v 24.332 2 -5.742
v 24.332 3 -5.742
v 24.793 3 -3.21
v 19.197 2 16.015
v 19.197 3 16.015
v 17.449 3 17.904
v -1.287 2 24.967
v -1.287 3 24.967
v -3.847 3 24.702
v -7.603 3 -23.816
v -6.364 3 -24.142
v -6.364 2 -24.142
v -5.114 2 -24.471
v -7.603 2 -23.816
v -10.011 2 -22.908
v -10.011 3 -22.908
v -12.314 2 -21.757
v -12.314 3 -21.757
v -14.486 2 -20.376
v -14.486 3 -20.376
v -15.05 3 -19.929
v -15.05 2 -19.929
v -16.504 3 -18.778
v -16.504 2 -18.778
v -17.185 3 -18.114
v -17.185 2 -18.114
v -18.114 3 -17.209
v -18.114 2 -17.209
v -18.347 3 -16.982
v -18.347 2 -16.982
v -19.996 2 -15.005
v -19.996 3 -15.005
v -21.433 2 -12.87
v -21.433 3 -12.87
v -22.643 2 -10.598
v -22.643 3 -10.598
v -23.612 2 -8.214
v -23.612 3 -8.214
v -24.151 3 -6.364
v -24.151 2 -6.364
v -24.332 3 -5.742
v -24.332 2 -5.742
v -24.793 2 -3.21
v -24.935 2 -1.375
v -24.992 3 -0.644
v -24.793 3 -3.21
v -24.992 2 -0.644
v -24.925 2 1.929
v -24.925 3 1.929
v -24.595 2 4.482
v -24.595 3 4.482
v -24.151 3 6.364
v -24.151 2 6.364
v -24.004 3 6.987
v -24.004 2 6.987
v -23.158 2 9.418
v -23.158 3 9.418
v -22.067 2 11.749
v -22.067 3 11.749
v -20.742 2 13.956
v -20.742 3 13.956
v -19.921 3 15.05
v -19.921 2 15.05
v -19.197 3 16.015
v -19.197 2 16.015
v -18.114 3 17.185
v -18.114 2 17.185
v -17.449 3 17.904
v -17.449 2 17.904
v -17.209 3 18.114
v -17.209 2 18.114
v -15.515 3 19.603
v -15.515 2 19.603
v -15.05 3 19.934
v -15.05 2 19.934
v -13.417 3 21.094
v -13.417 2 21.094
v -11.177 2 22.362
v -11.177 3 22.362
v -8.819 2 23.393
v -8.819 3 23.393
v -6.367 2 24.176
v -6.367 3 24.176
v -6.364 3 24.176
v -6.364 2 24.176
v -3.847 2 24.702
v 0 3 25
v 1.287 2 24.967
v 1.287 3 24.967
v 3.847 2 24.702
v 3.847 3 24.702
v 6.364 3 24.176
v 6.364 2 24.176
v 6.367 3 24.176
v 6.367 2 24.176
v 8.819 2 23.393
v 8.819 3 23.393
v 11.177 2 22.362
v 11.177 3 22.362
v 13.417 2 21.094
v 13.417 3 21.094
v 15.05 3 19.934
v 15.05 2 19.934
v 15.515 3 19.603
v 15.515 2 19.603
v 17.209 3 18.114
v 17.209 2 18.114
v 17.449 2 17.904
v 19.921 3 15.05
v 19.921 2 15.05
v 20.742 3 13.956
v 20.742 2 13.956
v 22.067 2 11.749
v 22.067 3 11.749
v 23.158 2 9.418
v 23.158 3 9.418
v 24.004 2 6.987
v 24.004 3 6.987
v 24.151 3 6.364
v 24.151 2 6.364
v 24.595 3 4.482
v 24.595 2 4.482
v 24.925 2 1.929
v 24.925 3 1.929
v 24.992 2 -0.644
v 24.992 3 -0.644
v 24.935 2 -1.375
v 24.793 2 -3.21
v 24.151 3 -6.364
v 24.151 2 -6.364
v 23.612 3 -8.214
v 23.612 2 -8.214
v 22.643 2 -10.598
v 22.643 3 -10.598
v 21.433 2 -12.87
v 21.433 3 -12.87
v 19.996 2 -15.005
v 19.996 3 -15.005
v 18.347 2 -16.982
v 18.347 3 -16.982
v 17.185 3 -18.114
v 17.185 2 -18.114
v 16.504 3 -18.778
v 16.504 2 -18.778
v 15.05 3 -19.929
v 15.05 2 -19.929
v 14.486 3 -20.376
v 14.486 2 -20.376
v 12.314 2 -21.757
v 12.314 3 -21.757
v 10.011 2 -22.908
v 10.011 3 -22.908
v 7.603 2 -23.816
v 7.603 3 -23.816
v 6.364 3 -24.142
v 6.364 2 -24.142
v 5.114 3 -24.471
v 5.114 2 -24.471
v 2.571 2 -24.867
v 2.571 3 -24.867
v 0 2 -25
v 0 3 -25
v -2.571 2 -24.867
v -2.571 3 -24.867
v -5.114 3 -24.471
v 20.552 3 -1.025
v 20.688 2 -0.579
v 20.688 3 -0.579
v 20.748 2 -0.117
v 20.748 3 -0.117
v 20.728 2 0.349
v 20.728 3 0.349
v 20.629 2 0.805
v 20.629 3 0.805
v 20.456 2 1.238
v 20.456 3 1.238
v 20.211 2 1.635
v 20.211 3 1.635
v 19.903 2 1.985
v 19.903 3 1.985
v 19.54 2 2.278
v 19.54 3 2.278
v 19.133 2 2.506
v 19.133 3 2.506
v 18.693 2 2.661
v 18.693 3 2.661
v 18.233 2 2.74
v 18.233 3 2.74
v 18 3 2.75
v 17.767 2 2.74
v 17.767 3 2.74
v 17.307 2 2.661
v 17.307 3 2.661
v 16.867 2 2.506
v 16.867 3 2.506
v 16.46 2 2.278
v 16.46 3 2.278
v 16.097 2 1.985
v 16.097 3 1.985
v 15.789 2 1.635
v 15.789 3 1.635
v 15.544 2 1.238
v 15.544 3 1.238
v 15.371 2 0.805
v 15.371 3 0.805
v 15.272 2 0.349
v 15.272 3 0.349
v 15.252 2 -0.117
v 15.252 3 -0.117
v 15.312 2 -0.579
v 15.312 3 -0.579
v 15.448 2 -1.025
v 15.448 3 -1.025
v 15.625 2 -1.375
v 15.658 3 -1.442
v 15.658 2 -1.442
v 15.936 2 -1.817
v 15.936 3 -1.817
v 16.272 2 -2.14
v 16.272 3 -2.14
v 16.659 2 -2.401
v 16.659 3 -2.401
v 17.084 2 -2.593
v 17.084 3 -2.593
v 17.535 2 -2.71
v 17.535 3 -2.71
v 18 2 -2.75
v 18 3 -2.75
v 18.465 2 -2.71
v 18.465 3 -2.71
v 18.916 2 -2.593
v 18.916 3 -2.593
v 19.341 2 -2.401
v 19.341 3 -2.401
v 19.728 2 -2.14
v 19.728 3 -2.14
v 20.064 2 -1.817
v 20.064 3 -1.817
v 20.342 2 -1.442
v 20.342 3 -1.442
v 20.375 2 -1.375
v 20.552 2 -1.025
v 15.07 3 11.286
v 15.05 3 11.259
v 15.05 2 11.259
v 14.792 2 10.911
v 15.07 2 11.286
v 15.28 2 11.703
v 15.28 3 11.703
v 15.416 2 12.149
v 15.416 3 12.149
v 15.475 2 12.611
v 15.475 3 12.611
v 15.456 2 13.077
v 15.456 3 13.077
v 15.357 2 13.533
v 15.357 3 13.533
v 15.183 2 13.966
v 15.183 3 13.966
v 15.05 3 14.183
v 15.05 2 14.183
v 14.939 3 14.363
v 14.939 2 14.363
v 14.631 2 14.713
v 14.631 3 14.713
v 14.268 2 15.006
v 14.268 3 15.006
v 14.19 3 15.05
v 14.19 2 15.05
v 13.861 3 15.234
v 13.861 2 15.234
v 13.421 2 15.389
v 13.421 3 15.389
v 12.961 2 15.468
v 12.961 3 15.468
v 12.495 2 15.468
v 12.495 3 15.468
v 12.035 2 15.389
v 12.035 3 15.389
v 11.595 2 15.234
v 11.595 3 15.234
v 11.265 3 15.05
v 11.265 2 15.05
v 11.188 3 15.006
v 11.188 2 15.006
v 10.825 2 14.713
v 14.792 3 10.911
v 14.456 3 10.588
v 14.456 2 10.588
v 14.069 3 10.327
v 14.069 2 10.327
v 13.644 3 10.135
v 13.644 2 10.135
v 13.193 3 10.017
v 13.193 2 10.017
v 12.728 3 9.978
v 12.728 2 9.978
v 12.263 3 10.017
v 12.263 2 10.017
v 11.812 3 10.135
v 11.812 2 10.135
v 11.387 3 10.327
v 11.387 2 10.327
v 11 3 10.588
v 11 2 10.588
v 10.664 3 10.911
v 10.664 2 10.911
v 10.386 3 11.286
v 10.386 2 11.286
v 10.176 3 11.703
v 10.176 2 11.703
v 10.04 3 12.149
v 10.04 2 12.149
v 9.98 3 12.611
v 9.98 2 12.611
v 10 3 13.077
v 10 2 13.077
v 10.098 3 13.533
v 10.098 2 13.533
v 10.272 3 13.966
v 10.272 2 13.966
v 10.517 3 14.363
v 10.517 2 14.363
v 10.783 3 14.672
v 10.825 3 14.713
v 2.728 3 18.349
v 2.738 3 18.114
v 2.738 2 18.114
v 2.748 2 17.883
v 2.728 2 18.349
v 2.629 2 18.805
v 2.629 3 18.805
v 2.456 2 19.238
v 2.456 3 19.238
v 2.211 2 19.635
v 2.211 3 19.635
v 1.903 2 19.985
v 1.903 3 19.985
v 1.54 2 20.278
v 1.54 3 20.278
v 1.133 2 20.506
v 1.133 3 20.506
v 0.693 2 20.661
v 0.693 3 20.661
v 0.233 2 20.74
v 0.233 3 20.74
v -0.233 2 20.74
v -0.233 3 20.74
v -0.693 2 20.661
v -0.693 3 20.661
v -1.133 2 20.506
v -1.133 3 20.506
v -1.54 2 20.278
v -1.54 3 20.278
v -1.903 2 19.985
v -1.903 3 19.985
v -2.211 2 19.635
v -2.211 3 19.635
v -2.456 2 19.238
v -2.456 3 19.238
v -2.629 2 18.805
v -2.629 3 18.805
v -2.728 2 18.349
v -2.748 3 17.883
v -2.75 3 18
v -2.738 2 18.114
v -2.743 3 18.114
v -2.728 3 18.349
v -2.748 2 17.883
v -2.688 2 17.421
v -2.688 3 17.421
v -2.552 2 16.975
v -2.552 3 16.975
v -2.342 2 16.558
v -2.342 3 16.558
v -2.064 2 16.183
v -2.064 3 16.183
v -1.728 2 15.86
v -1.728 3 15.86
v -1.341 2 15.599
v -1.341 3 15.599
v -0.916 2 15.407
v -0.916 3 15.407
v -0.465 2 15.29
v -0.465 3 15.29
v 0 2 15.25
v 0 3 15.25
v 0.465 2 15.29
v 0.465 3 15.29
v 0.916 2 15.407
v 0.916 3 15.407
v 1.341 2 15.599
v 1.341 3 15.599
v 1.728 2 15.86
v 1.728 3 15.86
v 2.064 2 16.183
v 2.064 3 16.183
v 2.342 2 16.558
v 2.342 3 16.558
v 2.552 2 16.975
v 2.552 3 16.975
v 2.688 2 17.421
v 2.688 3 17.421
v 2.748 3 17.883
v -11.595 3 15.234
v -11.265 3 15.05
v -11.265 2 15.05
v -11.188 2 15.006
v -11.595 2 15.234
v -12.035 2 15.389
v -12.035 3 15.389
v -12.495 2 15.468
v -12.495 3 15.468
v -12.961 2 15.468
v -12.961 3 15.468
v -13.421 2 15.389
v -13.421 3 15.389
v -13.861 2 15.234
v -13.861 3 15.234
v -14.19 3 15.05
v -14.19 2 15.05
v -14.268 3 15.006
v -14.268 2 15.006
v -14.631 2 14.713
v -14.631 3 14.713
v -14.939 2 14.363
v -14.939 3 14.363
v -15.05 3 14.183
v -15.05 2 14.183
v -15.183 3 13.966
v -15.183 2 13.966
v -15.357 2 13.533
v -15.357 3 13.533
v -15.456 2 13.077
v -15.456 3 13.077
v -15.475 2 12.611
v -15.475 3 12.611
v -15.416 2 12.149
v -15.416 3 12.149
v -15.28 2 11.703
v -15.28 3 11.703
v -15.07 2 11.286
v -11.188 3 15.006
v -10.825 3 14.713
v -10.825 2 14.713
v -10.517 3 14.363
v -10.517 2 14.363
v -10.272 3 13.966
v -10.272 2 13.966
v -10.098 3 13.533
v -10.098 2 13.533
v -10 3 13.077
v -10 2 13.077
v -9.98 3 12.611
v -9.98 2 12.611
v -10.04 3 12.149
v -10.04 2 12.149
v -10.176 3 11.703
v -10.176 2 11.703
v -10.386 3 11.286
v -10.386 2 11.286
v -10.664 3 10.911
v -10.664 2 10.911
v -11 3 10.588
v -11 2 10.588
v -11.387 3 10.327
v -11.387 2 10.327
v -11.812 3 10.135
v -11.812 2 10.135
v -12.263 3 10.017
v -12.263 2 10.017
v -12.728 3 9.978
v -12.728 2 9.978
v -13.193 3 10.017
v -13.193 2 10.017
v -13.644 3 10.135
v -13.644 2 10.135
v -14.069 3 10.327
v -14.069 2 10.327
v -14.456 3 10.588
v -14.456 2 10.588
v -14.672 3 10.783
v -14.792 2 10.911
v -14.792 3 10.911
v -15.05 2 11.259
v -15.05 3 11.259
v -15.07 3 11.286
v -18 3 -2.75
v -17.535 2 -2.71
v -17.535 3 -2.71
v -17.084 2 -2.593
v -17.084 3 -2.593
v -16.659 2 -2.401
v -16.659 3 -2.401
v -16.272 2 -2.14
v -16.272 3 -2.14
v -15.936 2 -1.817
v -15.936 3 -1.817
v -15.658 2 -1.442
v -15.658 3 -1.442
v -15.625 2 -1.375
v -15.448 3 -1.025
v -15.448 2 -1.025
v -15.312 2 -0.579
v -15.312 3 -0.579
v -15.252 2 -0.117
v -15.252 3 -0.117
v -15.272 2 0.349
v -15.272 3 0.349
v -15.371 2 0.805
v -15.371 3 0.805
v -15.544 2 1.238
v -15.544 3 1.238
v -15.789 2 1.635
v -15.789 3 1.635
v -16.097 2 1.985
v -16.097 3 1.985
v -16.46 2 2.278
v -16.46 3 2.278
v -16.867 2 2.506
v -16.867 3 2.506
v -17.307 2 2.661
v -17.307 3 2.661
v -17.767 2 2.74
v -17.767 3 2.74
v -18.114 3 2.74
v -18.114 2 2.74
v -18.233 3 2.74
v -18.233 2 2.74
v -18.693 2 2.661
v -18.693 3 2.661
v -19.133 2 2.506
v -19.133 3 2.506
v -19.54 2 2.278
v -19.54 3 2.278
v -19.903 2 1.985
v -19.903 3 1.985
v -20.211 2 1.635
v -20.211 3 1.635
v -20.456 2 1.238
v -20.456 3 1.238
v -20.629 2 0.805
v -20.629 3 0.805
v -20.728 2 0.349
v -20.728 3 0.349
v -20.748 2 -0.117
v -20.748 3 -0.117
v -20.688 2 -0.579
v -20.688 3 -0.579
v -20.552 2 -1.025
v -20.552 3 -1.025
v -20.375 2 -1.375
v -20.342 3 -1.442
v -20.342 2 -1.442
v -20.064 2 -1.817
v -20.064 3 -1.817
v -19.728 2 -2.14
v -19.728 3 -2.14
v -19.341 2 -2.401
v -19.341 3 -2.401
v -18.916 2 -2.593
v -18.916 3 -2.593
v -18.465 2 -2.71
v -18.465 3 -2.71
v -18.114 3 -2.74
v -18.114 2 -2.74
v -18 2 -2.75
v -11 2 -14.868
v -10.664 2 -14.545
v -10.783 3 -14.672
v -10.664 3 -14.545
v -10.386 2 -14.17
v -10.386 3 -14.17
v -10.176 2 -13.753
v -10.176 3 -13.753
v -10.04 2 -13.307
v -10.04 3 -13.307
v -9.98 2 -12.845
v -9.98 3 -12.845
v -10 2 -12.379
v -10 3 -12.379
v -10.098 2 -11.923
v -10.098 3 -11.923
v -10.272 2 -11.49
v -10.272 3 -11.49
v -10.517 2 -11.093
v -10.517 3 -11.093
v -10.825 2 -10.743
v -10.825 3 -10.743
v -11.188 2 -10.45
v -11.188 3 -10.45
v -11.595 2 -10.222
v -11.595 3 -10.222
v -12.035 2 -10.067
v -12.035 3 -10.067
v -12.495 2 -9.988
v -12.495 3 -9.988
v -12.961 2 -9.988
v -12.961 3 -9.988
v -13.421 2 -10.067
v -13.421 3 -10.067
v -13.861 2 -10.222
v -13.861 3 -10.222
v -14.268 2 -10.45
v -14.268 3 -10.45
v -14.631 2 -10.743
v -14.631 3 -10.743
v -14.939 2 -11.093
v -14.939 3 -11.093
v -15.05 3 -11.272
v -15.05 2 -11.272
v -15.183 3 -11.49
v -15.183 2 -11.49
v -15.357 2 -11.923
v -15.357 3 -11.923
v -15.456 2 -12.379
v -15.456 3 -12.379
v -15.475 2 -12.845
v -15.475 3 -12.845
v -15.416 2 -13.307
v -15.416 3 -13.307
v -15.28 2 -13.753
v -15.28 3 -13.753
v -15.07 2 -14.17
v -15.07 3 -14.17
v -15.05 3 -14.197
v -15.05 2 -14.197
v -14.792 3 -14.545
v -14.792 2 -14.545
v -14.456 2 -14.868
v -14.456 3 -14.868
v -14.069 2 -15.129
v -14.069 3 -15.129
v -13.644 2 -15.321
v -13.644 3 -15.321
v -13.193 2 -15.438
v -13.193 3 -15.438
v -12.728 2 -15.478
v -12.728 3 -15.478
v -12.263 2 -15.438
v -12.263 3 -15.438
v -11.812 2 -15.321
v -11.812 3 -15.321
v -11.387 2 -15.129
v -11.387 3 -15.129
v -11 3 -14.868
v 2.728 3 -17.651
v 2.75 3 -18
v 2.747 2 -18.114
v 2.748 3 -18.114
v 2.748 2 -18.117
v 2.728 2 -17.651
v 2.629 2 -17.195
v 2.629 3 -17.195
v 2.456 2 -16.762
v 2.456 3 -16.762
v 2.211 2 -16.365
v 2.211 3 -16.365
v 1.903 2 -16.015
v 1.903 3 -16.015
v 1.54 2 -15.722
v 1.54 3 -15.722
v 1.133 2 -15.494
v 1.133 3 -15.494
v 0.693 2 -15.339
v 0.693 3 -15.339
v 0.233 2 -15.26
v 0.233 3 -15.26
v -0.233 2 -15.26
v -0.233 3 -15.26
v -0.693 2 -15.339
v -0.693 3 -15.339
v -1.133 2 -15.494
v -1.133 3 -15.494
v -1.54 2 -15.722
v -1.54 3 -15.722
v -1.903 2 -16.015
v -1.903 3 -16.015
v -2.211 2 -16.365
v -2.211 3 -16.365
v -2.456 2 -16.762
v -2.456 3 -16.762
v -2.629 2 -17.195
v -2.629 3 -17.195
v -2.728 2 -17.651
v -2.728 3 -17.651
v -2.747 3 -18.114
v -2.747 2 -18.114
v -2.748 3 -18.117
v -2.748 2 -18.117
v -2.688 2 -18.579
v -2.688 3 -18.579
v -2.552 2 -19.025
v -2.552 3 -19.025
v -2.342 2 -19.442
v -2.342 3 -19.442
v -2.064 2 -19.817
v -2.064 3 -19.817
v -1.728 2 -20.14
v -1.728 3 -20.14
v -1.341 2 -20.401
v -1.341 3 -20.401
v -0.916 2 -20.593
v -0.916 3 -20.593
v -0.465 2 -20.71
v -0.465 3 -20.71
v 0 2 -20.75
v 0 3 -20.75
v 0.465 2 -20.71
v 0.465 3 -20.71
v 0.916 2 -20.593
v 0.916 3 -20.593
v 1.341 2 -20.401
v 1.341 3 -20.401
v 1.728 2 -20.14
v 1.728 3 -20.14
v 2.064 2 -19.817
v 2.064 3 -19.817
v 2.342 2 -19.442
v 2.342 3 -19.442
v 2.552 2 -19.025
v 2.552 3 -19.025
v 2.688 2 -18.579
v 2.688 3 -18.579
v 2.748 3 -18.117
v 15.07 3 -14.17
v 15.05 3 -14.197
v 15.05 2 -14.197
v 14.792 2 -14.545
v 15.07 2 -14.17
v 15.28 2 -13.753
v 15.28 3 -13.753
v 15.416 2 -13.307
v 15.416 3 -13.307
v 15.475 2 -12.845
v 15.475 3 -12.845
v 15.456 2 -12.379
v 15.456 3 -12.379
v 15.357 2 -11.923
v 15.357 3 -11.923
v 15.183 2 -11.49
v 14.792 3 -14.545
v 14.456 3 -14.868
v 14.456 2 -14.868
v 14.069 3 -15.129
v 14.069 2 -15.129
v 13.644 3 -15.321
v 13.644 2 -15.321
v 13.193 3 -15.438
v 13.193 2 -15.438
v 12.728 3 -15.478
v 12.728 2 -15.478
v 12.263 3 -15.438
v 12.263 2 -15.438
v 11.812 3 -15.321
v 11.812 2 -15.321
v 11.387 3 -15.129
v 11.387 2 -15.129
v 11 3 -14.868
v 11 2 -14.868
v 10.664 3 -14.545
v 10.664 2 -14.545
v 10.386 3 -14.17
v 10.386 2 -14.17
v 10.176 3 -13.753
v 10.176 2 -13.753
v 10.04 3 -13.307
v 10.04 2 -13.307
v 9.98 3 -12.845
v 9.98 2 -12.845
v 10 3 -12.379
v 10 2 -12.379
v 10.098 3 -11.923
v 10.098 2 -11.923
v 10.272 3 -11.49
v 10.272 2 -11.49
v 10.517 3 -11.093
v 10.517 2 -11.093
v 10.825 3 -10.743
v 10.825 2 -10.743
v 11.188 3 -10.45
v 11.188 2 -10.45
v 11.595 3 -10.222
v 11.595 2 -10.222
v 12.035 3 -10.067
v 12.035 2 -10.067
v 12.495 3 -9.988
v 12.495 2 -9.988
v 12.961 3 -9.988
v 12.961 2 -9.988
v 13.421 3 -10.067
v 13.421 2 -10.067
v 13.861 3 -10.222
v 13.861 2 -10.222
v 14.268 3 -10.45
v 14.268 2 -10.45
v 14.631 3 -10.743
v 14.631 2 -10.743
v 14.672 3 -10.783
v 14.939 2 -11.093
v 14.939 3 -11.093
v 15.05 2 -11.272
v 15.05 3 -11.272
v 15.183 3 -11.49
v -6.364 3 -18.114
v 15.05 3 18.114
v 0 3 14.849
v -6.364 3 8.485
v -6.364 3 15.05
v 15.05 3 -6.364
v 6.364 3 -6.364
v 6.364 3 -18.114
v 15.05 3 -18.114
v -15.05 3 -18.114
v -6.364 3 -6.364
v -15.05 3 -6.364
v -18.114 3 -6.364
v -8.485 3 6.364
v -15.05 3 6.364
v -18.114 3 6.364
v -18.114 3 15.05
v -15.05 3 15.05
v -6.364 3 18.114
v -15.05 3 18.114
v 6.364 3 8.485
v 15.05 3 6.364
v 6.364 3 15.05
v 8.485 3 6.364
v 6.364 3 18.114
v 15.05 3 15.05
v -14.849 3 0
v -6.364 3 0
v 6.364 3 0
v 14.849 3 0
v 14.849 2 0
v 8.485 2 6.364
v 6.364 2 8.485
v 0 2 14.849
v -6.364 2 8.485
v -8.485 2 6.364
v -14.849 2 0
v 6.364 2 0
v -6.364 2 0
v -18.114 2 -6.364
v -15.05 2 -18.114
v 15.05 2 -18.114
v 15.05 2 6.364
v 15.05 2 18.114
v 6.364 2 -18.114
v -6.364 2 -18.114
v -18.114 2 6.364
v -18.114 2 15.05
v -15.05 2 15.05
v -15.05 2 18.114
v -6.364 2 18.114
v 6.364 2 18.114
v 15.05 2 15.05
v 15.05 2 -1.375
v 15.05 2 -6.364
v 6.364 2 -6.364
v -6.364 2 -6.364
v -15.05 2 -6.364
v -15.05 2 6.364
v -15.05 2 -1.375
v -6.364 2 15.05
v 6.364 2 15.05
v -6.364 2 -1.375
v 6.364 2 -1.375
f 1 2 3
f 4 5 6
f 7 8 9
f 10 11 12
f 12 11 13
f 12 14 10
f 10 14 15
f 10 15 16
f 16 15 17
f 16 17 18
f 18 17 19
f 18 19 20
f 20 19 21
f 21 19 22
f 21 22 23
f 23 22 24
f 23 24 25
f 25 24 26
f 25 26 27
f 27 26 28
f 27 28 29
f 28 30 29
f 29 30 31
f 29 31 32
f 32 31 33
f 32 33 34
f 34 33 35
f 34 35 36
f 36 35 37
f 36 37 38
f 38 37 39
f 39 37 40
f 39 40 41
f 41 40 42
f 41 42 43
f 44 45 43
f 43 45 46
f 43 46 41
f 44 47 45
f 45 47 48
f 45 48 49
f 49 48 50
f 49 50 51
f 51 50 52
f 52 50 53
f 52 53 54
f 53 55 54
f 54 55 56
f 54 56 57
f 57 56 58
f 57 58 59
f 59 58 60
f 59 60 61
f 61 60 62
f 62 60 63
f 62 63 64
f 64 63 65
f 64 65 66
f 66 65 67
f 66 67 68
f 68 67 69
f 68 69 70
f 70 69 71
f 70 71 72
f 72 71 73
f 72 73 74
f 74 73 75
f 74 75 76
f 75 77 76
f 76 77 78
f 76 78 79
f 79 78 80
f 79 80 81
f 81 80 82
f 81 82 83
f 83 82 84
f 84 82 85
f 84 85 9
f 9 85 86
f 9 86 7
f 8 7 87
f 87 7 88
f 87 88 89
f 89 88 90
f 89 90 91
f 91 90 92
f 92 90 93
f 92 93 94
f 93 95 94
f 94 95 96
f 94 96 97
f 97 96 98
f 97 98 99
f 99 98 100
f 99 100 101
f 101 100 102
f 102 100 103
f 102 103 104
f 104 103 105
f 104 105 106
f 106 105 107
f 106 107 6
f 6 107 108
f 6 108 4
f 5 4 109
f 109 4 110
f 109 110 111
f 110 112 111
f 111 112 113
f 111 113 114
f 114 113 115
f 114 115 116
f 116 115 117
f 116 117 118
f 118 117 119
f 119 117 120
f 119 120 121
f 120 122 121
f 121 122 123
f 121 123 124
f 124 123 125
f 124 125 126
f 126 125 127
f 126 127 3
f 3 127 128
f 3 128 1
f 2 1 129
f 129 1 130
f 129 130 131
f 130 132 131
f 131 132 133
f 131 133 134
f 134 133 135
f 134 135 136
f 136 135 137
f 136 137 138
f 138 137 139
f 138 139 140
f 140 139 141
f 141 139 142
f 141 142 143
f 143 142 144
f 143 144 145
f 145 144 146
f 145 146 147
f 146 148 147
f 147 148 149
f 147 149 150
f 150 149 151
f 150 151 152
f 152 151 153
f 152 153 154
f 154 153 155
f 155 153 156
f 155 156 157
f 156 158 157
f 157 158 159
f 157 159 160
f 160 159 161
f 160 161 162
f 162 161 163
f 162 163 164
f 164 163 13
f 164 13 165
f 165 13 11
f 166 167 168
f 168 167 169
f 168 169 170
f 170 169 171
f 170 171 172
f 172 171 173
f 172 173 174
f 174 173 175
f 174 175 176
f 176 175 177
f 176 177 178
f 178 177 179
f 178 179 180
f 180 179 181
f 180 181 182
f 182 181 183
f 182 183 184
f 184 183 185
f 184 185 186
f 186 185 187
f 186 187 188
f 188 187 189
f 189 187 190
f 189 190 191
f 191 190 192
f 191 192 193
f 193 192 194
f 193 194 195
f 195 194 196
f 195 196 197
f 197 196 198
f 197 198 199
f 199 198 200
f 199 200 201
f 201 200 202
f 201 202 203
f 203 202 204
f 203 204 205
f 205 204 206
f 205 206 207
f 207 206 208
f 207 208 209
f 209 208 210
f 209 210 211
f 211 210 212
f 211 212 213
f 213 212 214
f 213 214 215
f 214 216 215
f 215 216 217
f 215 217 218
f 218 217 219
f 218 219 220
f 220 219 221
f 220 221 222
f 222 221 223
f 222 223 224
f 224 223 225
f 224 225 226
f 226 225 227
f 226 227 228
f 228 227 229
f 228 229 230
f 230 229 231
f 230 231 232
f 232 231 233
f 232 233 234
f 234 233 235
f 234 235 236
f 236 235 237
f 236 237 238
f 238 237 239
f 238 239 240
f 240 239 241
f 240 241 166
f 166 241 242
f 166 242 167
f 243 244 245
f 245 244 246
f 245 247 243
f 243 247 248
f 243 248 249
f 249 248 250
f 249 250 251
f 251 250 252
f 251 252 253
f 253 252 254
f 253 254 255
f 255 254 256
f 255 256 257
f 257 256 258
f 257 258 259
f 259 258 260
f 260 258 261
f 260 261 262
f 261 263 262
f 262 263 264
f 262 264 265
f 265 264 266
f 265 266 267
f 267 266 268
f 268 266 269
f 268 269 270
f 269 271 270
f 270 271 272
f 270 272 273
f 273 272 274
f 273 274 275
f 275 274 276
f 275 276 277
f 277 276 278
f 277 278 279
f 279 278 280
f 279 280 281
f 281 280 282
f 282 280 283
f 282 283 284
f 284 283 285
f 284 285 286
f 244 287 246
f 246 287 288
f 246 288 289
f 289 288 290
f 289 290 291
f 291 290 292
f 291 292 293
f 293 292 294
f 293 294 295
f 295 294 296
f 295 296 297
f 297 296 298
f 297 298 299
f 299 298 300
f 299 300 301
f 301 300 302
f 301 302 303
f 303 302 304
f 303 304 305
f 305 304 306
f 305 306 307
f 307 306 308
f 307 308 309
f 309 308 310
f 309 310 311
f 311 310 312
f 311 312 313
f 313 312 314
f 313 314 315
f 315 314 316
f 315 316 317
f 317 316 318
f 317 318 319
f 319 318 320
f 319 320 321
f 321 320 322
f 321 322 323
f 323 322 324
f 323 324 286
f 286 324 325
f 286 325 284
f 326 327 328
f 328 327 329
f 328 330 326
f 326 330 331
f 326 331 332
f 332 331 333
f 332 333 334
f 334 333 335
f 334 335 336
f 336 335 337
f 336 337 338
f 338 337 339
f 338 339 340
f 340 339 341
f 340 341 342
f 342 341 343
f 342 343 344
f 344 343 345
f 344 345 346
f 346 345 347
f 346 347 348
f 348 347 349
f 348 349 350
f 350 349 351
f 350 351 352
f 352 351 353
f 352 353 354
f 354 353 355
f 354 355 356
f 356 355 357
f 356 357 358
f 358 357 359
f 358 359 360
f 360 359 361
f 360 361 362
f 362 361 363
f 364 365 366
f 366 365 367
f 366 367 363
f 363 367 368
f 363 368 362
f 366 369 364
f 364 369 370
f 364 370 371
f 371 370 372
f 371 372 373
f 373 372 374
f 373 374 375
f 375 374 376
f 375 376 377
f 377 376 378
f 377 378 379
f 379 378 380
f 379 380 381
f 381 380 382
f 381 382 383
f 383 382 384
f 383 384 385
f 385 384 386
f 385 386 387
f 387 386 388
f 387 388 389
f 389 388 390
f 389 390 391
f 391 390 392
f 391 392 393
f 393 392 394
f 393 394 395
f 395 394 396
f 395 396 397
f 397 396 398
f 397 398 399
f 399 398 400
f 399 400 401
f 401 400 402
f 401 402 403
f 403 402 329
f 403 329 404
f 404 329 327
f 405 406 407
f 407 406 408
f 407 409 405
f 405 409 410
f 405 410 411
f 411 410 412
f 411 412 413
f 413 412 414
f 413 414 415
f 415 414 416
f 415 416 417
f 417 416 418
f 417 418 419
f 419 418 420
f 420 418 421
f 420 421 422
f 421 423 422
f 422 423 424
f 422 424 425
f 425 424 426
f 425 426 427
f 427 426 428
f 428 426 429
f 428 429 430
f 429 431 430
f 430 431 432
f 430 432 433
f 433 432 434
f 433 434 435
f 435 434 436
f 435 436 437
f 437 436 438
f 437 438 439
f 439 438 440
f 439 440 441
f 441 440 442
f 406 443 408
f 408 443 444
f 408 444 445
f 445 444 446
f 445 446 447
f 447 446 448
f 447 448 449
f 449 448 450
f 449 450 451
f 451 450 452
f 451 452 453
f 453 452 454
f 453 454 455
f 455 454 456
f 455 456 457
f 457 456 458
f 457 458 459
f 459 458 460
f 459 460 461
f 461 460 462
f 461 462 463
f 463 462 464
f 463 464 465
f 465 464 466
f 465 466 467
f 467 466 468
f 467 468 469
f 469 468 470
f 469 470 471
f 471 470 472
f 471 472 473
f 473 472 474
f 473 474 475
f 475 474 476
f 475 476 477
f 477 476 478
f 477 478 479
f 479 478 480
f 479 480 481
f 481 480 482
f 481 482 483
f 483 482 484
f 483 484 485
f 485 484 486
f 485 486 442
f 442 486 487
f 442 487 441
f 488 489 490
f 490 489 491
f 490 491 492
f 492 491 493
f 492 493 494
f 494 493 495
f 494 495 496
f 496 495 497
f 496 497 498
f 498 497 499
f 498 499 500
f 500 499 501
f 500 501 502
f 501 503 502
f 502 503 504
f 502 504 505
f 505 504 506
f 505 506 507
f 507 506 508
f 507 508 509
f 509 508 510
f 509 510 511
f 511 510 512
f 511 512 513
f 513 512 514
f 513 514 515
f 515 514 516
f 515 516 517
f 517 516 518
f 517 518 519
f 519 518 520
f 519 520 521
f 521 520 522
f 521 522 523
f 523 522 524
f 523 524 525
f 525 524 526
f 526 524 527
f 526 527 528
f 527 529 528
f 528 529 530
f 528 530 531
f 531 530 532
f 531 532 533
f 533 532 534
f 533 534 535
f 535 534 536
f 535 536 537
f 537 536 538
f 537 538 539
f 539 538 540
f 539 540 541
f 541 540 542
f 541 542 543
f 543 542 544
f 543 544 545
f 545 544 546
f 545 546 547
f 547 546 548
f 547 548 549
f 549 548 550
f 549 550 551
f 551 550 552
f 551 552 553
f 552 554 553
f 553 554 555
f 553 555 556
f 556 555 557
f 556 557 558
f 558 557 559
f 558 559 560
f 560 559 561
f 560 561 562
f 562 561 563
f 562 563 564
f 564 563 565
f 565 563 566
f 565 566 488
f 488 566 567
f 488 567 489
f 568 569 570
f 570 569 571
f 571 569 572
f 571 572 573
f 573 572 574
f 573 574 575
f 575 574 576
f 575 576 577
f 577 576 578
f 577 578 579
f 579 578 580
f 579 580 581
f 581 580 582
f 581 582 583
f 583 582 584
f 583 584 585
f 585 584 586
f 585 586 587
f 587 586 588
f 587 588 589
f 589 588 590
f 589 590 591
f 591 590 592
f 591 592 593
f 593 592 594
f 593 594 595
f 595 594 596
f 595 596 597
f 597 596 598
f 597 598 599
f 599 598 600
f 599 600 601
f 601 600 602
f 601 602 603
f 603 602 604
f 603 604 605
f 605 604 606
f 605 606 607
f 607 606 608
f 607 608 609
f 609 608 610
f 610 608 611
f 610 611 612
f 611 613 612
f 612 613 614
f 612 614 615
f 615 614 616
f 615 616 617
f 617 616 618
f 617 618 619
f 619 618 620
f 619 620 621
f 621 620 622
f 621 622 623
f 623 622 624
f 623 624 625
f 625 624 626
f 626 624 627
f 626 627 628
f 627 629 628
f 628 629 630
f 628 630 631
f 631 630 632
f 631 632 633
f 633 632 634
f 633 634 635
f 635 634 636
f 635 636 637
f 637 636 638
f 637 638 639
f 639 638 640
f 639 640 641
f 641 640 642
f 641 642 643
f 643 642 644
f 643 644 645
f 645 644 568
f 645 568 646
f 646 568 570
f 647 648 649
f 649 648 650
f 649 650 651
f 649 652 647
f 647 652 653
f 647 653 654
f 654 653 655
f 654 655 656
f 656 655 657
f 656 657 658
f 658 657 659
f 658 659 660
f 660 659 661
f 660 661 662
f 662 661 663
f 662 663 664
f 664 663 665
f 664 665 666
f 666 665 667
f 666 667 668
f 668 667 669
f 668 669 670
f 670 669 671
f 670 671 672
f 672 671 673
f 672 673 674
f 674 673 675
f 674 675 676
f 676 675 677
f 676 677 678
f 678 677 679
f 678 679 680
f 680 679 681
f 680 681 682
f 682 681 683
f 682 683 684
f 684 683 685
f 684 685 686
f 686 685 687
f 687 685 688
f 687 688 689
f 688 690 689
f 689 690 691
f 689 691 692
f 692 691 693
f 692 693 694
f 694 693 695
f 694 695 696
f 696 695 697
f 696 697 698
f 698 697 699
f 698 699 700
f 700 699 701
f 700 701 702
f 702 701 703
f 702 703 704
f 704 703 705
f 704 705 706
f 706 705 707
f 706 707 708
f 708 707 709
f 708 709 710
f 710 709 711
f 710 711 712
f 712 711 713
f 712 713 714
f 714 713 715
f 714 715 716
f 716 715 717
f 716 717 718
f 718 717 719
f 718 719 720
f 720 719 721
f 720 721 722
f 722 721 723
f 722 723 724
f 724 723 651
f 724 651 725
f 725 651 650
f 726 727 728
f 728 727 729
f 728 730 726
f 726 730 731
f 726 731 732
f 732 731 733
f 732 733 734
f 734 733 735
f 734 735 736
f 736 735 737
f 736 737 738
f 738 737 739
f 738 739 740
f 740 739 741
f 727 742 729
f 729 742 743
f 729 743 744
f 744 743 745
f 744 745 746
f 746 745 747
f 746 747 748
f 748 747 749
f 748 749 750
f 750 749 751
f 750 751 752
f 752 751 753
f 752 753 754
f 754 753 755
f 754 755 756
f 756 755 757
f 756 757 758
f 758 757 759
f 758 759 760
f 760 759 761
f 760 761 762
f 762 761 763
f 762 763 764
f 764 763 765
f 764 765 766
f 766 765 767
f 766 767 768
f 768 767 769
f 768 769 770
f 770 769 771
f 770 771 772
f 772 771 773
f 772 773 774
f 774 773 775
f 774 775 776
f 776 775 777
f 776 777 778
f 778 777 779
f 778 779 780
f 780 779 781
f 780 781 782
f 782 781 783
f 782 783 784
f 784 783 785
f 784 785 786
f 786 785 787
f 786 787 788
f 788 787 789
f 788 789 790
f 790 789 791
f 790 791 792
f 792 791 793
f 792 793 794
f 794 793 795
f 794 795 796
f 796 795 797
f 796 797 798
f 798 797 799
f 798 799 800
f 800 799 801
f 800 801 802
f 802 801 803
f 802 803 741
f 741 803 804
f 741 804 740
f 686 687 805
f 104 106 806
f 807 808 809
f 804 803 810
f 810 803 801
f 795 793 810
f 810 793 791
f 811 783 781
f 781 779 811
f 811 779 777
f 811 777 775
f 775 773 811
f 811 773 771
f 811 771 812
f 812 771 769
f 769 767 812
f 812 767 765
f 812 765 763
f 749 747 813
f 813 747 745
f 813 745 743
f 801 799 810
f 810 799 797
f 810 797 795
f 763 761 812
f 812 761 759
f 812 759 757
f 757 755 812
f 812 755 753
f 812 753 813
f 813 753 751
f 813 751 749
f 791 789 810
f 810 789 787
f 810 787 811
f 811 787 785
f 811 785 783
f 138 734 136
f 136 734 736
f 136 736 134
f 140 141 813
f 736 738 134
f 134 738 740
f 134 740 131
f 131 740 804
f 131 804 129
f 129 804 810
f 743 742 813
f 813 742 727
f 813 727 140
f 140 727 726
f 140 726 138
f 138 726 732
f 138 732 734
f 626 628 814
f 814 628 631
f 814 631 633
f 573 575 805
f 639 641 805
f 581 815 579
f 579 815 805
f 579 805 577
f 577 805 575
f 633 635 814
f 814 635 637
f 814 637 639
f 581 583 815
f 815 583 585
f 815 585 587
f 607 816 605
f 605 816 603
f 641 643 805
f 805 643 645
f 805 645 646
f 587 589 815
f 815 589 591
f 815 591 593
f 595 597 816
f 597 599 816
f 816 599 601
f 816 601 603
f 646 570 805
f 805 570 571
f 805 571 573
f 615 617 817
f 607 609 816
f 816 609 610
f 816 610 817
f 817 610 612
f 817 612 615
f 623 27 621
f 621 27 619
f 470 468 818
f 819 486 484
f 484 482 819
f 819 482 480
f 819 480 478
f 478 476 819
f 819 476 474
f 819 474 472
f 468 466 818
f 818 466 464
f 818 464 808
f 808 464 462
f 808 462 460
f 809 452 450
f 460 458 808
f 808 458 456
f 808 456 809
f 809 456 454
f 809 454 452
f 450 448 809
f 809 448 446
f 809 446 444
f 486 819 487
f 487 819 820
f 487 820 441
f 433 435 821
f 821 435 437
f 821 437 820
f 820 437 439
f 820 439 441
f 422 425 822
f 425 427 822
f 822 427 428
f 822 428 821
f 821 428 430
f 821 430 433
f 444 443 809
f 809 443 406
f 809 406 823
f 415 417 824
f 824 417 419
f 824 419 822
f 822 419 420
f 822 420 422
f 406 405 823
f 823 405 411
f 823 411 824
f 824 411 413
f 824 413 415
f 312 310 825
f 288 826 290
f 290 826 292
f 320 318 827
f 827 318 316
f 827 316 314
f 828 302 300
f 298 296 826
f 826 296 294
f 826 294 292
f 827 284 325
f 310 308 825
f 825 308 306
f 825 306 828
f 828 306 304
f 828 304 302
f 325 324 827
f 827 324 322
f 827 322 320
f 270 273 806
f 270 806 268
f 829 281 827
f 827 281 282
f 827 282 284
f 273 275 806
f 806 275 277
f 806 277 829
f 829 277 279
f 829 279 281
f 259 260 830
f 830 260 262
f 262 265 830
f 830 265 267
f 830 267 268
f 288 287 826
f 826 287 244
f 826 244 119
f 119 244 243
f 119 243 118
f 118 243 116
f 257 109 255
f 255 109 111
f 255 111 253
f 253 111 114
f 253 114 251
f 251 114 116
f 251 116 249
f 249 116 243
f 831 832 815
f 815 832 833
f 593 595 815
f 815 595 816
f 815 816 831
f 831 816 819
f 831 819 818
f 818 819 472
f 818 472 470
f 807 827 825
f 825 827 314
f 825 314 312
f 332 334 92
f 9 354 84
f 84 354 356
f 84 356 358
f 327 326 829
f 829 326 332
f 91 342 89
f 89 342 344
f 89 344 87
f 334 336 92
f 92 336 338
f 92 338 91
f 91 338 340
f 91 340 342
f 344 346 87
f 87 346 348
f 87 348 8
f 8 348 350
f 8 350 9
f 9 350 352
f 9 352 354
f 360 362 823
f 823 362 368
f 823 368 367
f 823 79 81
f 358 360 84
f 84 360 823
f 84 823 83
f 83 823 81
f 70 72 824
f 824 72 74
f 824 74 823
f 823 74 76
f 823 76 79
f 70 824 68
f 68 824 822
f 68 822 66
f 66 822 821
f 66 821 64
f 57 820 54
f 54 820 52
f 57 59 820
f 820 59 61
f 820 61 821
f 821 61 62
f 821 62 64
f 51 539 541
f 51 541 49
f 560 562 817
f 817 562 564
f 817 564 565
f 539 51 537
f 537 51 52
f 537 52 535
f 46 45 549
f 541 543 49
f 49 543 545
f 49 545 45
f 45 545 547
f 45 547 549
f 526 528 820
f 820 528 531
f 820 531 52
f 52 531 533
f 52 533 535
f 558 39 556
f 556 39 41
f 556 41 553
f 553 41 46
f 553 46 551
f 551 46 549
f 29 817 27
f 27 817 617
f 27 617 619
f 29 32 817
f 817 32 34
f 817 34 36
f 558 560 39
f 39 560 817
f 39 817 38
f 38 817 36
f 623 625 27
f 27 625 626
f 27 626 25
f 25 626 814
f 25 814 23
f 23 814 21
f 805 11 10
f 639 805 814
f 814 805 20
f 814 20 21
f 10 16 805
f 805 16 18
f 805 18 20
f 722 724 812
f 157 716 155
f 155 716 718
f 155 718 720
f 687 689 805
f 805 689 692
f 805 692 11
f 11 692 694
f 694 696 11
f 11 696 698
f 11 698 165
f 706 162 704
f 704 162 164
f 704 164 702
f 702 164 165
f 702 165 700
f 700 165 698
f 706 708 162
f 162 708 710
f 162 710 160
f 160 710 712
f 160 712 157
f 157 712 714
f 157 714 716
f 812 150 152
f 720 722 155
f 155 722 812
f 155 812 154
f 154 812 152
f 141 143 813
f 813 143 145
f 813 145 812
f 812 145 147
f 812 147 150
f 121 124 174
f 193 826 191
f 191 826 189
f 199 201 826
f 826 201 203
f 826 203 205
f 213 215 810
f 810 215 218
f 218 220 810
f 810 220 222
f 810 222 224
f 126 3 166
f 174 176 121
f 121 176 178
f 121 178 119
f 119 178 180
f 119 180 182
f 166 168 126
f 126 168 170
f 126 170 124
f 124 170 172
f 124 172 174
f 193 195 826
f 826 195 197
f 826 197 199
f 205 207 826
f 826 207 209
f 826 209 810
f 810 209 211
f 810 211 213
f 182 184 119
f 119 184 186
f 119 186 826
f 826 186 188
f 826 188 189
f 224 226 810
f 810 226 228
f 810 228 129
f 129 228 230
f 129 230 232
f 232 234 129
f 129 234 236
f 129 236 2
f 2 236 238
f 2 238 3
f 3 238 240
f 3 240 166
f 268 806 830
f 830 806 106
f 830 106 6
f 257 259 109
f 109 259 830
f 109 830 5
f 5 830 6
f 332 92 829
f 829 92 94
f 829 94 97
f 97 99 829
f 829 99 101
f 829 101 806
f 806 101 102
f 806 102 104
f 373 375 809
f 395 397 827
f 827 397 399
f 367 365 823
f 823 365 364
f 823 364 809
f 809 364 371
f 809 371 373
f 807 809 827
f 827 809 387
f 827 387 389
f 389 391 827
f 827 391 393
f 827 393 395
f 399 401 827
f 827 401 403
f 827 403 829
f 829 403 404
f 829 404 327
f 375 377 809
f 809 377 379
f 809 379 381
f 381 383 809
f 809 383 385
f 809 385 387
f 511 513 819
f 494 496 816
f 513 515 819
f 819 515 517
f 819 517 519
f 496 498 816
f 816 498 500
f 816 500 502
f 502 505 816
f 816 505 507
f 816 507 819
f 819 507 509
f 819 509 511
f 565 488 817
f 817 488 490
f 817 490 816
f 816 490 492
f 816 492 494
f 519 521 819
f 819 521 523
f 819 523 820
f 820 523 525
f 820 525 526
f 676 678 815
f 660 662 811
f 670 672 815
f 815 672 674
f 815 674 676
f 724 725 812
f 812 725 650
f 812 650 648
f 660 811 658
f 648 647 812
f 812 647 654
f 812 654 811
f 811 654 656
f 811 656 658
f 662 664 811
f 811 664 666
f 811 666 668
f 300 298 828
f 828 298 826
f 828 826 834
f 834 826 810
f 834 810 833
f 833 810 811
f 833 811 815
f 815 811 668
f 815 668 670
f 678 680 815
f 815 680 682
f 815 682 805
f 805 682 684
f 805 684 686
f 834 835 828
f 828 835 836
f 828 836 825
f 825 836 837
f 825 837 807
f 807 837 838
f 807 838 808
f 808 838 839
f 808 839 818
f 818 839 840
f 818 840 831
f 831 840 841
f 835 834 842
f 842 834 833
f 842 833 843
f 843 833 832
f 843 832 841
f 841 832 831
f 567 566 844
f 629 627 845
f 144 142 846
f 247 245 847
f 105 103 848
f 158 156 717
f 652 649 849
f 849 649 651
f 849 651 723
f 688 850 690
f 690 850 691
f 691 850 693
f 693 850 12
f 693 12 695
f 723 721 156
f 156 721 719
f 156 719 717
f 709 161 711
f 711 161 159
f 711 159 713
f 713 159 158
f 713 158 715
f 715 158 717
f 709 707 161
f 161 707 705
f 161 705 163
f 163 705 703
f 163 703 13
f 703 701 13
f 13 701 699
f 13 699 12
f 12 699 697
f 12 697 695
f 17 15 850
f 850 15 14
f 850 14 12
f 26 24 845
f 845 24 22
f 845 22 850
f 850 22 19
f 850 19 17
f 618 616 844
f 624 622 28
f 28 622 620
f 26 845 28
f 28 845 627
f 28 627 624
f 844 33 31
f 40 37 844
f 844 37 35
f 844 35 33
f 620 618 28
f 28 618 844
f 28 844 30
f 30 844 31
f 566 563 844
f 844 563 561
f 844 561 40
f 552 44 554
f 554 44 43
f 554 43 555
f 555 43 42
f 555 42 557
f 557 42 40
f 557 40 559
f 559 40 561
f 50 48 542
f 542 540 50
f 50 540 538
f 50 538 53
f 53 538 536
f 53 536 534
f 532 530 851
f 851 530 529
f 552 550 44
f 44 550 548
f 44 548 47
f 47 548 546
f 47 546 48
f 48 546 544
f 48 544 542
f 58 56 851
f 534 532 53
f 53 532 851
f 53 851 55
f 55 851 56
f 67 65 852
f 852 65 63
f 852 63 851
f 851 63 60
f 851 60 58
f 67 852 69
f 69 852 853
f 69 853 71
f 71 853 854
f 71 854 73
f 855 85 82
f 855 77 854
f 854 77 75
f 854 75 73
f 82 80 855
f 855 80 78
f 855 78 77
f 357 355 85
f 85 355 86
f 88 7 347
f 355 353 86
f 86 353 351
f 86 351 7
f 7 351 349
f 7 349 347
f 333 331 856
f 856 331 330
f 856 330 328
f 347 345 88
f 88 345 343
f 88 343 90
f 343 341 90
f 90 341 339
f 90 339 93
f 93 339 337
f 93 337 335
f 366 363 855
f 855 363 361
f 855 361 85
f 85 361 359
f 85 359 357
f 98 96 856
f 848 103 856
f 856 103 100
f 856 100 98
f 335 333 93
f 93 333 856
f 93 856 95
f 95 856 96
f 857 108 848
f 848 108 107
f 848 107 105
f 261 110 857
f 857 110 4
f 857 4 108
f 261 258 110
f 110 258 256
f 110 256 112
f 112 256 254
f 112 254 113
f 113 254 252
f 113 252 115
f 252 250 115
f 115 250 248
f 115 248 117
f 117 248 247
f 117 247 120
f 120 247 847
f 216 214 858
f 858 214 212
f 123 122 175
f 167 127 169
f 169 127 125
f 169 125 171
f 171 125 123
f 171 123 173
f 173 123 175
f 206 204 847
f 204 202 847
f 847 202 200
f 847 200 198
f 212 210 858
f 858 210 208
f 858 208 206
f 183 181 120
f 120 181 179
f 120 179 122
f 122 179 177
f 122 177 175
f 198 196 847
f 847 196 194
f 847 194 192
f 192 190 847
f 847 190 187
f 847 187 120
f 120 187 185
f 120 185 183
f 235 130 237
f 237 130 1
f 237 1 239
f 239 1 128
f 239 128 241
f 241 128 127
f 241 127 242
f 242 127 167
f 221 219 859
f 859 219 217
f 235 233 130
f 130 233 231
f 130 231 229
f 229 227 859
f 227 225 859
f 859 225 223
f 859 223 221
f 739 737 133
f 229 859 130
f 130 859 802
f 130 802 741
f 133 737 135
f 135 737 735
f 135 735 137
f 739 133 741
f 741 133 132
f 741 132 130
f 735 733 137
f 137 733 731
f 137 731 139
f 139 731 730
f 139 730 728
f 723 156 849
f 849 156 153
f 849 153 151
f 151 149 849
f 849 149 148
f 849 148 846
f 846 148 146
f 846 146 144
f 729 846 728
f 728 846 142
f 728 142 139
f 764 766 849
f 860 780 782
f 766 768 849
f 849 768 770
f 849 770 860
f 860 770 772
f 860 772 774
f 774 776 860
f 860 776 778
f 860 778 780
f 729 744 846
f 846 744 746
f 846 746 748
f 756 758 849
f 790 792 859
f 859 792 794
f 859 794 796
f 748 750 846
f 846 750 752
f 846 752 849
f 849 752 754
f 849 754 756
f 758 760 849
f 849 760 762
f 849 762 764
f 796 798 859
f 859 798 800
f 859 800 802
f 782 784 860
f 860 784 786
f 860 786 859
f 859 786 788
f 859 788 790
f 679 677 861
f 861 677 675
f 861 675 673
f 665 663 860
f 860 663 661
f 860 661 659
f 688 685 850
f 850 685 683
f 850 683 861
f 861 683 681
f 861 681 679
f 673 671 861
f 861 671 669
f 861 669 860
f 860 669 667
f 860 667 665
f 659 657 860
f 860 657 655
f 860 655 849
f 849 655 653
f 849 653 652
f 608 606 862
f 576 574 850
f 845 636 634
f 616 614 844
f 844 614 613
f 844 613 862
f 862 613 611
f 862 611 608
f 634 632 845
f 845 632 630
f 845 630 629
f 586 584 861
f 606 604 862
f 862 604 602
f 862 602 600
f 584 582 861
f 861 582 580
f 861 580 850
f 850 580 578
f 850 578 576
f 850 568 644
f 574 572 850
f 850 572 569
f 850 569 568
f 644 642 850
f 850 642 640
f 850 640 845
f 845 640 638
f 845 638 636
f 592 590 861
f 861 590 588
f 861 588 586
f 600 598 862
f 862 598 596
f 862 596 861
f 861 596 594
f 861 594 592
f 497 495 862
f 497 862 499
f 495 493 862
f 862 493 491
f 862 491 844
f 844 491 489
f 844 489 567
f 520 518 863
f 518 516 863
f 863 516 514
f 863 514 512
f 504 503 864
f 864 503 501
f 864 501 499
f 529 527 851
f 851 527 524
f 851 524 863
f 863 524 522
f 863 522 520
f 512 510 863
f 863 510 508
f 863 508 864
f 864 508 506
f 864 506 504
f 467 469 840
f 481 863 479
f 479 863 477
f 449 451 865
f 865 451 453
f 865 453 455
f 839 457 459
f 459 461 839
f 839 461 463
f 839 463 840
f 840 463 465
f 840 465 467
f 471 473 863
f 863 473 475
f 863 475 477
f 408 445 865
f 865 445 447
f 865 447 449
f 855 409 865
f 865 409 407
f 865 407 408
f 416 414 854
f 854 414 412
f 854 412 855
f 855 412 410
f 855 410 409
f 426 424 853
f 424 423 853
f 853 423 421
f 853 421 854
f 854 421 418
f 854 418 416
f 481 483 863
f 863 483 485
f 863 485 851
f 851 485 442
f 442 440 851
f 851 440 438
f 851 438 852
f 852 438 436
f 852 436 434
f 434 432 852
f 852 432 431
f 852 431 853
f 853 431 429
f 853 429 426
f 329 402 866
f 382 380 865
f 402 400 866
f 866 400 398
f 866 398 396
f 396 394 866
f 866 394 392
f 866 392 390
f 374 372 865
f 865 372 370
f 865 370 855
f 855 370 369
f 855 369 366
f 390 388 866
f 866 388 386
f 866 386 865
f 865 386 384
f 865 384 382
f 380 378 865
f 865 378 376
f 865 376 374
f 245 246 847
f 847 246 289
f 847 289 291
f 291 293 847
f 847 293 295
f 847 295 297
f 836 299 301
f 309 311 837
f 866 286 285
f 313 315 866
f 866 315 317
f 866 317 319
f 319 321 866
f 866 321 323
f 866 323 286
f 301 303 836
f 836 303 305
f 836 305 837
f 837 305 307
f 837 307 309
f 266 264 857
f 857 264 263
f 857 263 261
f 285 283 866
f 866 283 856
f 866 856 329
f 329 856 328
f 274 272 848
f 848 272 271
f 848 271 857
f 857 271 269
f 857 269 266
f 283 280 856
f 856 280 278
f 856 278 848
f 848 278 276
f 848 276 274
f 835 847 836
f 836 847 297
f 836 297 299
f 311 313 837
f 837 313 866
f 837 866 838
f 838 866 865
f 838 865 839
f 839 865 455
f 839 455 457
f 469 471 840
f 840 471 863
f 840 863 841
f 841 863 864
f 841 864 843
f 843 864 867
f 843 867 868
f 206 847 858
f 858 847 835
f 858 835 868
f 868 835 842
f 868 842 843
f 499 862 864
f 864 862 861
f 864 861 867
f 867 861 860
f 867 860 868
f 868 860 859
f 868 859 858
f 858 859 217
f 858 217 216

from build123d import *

# Parameters (mm, degrees)
SKETCH_1_R               = 25
EXTRUDE_2_DEPTH          = 1
SKETCH_2_R               = 1.5
CUT_EXTRUDE_1_DEPTH      = 1
PATTERN_CIRCULAR_1_COUNT = 8
CUT_EXTRUDE_2_DEPTH      = 1
EXTRUDE_3_DEPTH          = 1
SKETCH_5_R               = 25
EXTRUDE_5_DEPTH          = 2
SKETCH_6_R               = 1.5
CUT_EXTRUDE_3_DEPTH      = 2
PATTERN_CIRCULAR_2_COUNT = 8
SKETCH_7_R               = 25
EXTRUDE_6_DEPTH          = 2
SKETCH_8_R               = 2.75
CUT_EXTRUDE_4_DEPTH      = 2
PATTERN_CIRCULAR_3_COUNT = 8
EXTRUDE_8_DEPTH          = 2
SKETCH_11_R              = 25
CUT_EXTRUDE_6_DEPTH      = 4


with BuildPart() as part:
    # 草图1 → 凸台-拉伸2 (new body)
    with BuildSketch(Plane(origin=(0, 0, 0), x_dir=(1, 0, 0), z_dir=(0, 1, 0))):
        Circle(SKETCH_1_R)
    extrude(amount=EXTRUDE_2_DEPTH)

    # 草图2 → 切除-拉伸1 (cut)
    with BuildSketch(Plane(origin=(0, 1, 0), x_dir=(1, 0, 0), z_dir=(0, 1, 0))):
        with Locations((18, 0)):
            Circle(SKETCH_2_R)
    cut_extrude_1 = extrude(amount=-CUT_EXTRUDE_1_DEPTH, mode=Mode.SUBTRACT)

    # 阵列(圆周)1: 切除-拉伸1 ×8 about axis
    pattern_circular_1_axis = Axis((0, 0, 0), (0, 1, 0))
    for i in range(1, PATTERN_CIRCULAR_1_COUNT):
        add(cut_extrude_1.rotate(pattern_circular_1_axis, i * 360 / PATTERN_CIRCULAR_1_COUNT), mode=Mode.SUBTRACT)

    # 草图3 → 切除-拉伸2 (cut)
    with BuildSketch(Plane(origin=(0, 1, 0), x_dir=(1, 0, 0), z_dir=(0, 1, 0))):
        Polygon((-15.202795796, 0), (15.202795796, 0), (0, -15.202795796), align=None)
    extrude(amount=-CUT_EXTRUDE_2_DEPTH, mode=Mode.SUBTRACT)

    # 草图4 → 凸台-拉伸3 (add)
    with BuildSketch(Plane(origin=(0, 1, 0), x_dir=(1, 0, 0), z_dir=(0, 1, 0))):
        Polygon((0, -14.849242405), (14.849242405, 0), (15.202795796, 0), (0, -15.202795796), (-15.202795796, 0), (-14.849242405, 0), align=None)
    extrude(amount=-EXTRUDE_3_DEPTH)

    # 草图5 → 凸台-拉伸5 (add)
    with BuildSketch(Plane.XZ):
        Circle(SKETCH_5_R)
    extrude(amount=EXTRUDE_5_DEPTH)

    # 草图6 → 切除-拉伸3 (cut)
    with BuildSketch(Plane(origin=(0, 0, 0), x_dir=(1, 0, 0), z_dir=(0, 1, 0))):
        with Locations((18, 0)):
            Circle(SKETCH_6_R)
    cut_extrude_3 = extrude(amount=-CUT_EXTRUDE_3_DEPTH, mode=Mode.SUBTRACT)

    # 阵列(圆周)2: 切除-拉伸3 ×8 about axis
    pattern_circular_2_axis = Axis((0, 0, 0), (0, 1, 0))
    for i in range(1, PATTERN_CIRCULAR_2_COUNT):
        add(cut_extrude_3.rotate(pattern_circular_2_axis, i * 360 / PATTERN_CIRCULAR_2_COUNT), mode=Mode.SUBTRACT)

    # 草图7 → 凸台-拉伸6 (add)
    with BuildSketch(Plane(origin=(0, 1, 0), x_dir=(1, 0, 0), z_dir=(0, 1, 0))):
        Circle(SKETCH_7_R)
        Polygon((-14.849242405, 0), (14.849242405, 0), (0, -14.849242405), align=None, mode=Mode.SUBTRACT)
    extrude(amount=EXTRUDE_6_DEPTH)

    # 草图8 → 切除-拉伸4 (cut)
    with BuildSketch(Plane(origin=(0, 1, 0), x_dir=(1, 0, 0), z_dir=(0, 1, 0))):
        with Locations((18, 0)):
            Circle(SKETCH_8_R)
    cut_extrude_4 = extrude(amount=CUT_EXTRUDE_4_DEPTH, mode=Mode.SUBTRACT)

    # 阵列(圆周)3: 切除-拉伸4 ×8 about axis
    pattern_circular_3_axis = Axis((0, 0, 0), (0, 1, 0))
    for i in range(1, PATTERN_CIRCULAR_3_COUNT):
        add(cut_extrude_4.rotate(pattern_circular_3_axis, i * 360 / PATTERN_CIRCULAR_3_COUNT), mode=Mode.SUBTRACT)

    # 草图9 → 凸台-拉伸8 (add)
    with BuildSketch(Plane(origin=(0, 0, 0), x_dir=(1, 0, 0), z_dir=(0, 1, 0))):
        Polygon((-14.849242405, 0), (14.849242405, 0), (0, -14.849242405), align=None)
    extrude(amount=EXTRUDE_8_DEPTH)

    # 草图11 → 切除-拉伸6 (cut)
    with BuildSketch(Plane.XZ.offset(2)):
        Circle(SKETCH_11_R)
    extrude(amount=-CUT_EXTRUDE_6_DEPTH, mode=Mode.SUBTRACT)


solid = part.part
